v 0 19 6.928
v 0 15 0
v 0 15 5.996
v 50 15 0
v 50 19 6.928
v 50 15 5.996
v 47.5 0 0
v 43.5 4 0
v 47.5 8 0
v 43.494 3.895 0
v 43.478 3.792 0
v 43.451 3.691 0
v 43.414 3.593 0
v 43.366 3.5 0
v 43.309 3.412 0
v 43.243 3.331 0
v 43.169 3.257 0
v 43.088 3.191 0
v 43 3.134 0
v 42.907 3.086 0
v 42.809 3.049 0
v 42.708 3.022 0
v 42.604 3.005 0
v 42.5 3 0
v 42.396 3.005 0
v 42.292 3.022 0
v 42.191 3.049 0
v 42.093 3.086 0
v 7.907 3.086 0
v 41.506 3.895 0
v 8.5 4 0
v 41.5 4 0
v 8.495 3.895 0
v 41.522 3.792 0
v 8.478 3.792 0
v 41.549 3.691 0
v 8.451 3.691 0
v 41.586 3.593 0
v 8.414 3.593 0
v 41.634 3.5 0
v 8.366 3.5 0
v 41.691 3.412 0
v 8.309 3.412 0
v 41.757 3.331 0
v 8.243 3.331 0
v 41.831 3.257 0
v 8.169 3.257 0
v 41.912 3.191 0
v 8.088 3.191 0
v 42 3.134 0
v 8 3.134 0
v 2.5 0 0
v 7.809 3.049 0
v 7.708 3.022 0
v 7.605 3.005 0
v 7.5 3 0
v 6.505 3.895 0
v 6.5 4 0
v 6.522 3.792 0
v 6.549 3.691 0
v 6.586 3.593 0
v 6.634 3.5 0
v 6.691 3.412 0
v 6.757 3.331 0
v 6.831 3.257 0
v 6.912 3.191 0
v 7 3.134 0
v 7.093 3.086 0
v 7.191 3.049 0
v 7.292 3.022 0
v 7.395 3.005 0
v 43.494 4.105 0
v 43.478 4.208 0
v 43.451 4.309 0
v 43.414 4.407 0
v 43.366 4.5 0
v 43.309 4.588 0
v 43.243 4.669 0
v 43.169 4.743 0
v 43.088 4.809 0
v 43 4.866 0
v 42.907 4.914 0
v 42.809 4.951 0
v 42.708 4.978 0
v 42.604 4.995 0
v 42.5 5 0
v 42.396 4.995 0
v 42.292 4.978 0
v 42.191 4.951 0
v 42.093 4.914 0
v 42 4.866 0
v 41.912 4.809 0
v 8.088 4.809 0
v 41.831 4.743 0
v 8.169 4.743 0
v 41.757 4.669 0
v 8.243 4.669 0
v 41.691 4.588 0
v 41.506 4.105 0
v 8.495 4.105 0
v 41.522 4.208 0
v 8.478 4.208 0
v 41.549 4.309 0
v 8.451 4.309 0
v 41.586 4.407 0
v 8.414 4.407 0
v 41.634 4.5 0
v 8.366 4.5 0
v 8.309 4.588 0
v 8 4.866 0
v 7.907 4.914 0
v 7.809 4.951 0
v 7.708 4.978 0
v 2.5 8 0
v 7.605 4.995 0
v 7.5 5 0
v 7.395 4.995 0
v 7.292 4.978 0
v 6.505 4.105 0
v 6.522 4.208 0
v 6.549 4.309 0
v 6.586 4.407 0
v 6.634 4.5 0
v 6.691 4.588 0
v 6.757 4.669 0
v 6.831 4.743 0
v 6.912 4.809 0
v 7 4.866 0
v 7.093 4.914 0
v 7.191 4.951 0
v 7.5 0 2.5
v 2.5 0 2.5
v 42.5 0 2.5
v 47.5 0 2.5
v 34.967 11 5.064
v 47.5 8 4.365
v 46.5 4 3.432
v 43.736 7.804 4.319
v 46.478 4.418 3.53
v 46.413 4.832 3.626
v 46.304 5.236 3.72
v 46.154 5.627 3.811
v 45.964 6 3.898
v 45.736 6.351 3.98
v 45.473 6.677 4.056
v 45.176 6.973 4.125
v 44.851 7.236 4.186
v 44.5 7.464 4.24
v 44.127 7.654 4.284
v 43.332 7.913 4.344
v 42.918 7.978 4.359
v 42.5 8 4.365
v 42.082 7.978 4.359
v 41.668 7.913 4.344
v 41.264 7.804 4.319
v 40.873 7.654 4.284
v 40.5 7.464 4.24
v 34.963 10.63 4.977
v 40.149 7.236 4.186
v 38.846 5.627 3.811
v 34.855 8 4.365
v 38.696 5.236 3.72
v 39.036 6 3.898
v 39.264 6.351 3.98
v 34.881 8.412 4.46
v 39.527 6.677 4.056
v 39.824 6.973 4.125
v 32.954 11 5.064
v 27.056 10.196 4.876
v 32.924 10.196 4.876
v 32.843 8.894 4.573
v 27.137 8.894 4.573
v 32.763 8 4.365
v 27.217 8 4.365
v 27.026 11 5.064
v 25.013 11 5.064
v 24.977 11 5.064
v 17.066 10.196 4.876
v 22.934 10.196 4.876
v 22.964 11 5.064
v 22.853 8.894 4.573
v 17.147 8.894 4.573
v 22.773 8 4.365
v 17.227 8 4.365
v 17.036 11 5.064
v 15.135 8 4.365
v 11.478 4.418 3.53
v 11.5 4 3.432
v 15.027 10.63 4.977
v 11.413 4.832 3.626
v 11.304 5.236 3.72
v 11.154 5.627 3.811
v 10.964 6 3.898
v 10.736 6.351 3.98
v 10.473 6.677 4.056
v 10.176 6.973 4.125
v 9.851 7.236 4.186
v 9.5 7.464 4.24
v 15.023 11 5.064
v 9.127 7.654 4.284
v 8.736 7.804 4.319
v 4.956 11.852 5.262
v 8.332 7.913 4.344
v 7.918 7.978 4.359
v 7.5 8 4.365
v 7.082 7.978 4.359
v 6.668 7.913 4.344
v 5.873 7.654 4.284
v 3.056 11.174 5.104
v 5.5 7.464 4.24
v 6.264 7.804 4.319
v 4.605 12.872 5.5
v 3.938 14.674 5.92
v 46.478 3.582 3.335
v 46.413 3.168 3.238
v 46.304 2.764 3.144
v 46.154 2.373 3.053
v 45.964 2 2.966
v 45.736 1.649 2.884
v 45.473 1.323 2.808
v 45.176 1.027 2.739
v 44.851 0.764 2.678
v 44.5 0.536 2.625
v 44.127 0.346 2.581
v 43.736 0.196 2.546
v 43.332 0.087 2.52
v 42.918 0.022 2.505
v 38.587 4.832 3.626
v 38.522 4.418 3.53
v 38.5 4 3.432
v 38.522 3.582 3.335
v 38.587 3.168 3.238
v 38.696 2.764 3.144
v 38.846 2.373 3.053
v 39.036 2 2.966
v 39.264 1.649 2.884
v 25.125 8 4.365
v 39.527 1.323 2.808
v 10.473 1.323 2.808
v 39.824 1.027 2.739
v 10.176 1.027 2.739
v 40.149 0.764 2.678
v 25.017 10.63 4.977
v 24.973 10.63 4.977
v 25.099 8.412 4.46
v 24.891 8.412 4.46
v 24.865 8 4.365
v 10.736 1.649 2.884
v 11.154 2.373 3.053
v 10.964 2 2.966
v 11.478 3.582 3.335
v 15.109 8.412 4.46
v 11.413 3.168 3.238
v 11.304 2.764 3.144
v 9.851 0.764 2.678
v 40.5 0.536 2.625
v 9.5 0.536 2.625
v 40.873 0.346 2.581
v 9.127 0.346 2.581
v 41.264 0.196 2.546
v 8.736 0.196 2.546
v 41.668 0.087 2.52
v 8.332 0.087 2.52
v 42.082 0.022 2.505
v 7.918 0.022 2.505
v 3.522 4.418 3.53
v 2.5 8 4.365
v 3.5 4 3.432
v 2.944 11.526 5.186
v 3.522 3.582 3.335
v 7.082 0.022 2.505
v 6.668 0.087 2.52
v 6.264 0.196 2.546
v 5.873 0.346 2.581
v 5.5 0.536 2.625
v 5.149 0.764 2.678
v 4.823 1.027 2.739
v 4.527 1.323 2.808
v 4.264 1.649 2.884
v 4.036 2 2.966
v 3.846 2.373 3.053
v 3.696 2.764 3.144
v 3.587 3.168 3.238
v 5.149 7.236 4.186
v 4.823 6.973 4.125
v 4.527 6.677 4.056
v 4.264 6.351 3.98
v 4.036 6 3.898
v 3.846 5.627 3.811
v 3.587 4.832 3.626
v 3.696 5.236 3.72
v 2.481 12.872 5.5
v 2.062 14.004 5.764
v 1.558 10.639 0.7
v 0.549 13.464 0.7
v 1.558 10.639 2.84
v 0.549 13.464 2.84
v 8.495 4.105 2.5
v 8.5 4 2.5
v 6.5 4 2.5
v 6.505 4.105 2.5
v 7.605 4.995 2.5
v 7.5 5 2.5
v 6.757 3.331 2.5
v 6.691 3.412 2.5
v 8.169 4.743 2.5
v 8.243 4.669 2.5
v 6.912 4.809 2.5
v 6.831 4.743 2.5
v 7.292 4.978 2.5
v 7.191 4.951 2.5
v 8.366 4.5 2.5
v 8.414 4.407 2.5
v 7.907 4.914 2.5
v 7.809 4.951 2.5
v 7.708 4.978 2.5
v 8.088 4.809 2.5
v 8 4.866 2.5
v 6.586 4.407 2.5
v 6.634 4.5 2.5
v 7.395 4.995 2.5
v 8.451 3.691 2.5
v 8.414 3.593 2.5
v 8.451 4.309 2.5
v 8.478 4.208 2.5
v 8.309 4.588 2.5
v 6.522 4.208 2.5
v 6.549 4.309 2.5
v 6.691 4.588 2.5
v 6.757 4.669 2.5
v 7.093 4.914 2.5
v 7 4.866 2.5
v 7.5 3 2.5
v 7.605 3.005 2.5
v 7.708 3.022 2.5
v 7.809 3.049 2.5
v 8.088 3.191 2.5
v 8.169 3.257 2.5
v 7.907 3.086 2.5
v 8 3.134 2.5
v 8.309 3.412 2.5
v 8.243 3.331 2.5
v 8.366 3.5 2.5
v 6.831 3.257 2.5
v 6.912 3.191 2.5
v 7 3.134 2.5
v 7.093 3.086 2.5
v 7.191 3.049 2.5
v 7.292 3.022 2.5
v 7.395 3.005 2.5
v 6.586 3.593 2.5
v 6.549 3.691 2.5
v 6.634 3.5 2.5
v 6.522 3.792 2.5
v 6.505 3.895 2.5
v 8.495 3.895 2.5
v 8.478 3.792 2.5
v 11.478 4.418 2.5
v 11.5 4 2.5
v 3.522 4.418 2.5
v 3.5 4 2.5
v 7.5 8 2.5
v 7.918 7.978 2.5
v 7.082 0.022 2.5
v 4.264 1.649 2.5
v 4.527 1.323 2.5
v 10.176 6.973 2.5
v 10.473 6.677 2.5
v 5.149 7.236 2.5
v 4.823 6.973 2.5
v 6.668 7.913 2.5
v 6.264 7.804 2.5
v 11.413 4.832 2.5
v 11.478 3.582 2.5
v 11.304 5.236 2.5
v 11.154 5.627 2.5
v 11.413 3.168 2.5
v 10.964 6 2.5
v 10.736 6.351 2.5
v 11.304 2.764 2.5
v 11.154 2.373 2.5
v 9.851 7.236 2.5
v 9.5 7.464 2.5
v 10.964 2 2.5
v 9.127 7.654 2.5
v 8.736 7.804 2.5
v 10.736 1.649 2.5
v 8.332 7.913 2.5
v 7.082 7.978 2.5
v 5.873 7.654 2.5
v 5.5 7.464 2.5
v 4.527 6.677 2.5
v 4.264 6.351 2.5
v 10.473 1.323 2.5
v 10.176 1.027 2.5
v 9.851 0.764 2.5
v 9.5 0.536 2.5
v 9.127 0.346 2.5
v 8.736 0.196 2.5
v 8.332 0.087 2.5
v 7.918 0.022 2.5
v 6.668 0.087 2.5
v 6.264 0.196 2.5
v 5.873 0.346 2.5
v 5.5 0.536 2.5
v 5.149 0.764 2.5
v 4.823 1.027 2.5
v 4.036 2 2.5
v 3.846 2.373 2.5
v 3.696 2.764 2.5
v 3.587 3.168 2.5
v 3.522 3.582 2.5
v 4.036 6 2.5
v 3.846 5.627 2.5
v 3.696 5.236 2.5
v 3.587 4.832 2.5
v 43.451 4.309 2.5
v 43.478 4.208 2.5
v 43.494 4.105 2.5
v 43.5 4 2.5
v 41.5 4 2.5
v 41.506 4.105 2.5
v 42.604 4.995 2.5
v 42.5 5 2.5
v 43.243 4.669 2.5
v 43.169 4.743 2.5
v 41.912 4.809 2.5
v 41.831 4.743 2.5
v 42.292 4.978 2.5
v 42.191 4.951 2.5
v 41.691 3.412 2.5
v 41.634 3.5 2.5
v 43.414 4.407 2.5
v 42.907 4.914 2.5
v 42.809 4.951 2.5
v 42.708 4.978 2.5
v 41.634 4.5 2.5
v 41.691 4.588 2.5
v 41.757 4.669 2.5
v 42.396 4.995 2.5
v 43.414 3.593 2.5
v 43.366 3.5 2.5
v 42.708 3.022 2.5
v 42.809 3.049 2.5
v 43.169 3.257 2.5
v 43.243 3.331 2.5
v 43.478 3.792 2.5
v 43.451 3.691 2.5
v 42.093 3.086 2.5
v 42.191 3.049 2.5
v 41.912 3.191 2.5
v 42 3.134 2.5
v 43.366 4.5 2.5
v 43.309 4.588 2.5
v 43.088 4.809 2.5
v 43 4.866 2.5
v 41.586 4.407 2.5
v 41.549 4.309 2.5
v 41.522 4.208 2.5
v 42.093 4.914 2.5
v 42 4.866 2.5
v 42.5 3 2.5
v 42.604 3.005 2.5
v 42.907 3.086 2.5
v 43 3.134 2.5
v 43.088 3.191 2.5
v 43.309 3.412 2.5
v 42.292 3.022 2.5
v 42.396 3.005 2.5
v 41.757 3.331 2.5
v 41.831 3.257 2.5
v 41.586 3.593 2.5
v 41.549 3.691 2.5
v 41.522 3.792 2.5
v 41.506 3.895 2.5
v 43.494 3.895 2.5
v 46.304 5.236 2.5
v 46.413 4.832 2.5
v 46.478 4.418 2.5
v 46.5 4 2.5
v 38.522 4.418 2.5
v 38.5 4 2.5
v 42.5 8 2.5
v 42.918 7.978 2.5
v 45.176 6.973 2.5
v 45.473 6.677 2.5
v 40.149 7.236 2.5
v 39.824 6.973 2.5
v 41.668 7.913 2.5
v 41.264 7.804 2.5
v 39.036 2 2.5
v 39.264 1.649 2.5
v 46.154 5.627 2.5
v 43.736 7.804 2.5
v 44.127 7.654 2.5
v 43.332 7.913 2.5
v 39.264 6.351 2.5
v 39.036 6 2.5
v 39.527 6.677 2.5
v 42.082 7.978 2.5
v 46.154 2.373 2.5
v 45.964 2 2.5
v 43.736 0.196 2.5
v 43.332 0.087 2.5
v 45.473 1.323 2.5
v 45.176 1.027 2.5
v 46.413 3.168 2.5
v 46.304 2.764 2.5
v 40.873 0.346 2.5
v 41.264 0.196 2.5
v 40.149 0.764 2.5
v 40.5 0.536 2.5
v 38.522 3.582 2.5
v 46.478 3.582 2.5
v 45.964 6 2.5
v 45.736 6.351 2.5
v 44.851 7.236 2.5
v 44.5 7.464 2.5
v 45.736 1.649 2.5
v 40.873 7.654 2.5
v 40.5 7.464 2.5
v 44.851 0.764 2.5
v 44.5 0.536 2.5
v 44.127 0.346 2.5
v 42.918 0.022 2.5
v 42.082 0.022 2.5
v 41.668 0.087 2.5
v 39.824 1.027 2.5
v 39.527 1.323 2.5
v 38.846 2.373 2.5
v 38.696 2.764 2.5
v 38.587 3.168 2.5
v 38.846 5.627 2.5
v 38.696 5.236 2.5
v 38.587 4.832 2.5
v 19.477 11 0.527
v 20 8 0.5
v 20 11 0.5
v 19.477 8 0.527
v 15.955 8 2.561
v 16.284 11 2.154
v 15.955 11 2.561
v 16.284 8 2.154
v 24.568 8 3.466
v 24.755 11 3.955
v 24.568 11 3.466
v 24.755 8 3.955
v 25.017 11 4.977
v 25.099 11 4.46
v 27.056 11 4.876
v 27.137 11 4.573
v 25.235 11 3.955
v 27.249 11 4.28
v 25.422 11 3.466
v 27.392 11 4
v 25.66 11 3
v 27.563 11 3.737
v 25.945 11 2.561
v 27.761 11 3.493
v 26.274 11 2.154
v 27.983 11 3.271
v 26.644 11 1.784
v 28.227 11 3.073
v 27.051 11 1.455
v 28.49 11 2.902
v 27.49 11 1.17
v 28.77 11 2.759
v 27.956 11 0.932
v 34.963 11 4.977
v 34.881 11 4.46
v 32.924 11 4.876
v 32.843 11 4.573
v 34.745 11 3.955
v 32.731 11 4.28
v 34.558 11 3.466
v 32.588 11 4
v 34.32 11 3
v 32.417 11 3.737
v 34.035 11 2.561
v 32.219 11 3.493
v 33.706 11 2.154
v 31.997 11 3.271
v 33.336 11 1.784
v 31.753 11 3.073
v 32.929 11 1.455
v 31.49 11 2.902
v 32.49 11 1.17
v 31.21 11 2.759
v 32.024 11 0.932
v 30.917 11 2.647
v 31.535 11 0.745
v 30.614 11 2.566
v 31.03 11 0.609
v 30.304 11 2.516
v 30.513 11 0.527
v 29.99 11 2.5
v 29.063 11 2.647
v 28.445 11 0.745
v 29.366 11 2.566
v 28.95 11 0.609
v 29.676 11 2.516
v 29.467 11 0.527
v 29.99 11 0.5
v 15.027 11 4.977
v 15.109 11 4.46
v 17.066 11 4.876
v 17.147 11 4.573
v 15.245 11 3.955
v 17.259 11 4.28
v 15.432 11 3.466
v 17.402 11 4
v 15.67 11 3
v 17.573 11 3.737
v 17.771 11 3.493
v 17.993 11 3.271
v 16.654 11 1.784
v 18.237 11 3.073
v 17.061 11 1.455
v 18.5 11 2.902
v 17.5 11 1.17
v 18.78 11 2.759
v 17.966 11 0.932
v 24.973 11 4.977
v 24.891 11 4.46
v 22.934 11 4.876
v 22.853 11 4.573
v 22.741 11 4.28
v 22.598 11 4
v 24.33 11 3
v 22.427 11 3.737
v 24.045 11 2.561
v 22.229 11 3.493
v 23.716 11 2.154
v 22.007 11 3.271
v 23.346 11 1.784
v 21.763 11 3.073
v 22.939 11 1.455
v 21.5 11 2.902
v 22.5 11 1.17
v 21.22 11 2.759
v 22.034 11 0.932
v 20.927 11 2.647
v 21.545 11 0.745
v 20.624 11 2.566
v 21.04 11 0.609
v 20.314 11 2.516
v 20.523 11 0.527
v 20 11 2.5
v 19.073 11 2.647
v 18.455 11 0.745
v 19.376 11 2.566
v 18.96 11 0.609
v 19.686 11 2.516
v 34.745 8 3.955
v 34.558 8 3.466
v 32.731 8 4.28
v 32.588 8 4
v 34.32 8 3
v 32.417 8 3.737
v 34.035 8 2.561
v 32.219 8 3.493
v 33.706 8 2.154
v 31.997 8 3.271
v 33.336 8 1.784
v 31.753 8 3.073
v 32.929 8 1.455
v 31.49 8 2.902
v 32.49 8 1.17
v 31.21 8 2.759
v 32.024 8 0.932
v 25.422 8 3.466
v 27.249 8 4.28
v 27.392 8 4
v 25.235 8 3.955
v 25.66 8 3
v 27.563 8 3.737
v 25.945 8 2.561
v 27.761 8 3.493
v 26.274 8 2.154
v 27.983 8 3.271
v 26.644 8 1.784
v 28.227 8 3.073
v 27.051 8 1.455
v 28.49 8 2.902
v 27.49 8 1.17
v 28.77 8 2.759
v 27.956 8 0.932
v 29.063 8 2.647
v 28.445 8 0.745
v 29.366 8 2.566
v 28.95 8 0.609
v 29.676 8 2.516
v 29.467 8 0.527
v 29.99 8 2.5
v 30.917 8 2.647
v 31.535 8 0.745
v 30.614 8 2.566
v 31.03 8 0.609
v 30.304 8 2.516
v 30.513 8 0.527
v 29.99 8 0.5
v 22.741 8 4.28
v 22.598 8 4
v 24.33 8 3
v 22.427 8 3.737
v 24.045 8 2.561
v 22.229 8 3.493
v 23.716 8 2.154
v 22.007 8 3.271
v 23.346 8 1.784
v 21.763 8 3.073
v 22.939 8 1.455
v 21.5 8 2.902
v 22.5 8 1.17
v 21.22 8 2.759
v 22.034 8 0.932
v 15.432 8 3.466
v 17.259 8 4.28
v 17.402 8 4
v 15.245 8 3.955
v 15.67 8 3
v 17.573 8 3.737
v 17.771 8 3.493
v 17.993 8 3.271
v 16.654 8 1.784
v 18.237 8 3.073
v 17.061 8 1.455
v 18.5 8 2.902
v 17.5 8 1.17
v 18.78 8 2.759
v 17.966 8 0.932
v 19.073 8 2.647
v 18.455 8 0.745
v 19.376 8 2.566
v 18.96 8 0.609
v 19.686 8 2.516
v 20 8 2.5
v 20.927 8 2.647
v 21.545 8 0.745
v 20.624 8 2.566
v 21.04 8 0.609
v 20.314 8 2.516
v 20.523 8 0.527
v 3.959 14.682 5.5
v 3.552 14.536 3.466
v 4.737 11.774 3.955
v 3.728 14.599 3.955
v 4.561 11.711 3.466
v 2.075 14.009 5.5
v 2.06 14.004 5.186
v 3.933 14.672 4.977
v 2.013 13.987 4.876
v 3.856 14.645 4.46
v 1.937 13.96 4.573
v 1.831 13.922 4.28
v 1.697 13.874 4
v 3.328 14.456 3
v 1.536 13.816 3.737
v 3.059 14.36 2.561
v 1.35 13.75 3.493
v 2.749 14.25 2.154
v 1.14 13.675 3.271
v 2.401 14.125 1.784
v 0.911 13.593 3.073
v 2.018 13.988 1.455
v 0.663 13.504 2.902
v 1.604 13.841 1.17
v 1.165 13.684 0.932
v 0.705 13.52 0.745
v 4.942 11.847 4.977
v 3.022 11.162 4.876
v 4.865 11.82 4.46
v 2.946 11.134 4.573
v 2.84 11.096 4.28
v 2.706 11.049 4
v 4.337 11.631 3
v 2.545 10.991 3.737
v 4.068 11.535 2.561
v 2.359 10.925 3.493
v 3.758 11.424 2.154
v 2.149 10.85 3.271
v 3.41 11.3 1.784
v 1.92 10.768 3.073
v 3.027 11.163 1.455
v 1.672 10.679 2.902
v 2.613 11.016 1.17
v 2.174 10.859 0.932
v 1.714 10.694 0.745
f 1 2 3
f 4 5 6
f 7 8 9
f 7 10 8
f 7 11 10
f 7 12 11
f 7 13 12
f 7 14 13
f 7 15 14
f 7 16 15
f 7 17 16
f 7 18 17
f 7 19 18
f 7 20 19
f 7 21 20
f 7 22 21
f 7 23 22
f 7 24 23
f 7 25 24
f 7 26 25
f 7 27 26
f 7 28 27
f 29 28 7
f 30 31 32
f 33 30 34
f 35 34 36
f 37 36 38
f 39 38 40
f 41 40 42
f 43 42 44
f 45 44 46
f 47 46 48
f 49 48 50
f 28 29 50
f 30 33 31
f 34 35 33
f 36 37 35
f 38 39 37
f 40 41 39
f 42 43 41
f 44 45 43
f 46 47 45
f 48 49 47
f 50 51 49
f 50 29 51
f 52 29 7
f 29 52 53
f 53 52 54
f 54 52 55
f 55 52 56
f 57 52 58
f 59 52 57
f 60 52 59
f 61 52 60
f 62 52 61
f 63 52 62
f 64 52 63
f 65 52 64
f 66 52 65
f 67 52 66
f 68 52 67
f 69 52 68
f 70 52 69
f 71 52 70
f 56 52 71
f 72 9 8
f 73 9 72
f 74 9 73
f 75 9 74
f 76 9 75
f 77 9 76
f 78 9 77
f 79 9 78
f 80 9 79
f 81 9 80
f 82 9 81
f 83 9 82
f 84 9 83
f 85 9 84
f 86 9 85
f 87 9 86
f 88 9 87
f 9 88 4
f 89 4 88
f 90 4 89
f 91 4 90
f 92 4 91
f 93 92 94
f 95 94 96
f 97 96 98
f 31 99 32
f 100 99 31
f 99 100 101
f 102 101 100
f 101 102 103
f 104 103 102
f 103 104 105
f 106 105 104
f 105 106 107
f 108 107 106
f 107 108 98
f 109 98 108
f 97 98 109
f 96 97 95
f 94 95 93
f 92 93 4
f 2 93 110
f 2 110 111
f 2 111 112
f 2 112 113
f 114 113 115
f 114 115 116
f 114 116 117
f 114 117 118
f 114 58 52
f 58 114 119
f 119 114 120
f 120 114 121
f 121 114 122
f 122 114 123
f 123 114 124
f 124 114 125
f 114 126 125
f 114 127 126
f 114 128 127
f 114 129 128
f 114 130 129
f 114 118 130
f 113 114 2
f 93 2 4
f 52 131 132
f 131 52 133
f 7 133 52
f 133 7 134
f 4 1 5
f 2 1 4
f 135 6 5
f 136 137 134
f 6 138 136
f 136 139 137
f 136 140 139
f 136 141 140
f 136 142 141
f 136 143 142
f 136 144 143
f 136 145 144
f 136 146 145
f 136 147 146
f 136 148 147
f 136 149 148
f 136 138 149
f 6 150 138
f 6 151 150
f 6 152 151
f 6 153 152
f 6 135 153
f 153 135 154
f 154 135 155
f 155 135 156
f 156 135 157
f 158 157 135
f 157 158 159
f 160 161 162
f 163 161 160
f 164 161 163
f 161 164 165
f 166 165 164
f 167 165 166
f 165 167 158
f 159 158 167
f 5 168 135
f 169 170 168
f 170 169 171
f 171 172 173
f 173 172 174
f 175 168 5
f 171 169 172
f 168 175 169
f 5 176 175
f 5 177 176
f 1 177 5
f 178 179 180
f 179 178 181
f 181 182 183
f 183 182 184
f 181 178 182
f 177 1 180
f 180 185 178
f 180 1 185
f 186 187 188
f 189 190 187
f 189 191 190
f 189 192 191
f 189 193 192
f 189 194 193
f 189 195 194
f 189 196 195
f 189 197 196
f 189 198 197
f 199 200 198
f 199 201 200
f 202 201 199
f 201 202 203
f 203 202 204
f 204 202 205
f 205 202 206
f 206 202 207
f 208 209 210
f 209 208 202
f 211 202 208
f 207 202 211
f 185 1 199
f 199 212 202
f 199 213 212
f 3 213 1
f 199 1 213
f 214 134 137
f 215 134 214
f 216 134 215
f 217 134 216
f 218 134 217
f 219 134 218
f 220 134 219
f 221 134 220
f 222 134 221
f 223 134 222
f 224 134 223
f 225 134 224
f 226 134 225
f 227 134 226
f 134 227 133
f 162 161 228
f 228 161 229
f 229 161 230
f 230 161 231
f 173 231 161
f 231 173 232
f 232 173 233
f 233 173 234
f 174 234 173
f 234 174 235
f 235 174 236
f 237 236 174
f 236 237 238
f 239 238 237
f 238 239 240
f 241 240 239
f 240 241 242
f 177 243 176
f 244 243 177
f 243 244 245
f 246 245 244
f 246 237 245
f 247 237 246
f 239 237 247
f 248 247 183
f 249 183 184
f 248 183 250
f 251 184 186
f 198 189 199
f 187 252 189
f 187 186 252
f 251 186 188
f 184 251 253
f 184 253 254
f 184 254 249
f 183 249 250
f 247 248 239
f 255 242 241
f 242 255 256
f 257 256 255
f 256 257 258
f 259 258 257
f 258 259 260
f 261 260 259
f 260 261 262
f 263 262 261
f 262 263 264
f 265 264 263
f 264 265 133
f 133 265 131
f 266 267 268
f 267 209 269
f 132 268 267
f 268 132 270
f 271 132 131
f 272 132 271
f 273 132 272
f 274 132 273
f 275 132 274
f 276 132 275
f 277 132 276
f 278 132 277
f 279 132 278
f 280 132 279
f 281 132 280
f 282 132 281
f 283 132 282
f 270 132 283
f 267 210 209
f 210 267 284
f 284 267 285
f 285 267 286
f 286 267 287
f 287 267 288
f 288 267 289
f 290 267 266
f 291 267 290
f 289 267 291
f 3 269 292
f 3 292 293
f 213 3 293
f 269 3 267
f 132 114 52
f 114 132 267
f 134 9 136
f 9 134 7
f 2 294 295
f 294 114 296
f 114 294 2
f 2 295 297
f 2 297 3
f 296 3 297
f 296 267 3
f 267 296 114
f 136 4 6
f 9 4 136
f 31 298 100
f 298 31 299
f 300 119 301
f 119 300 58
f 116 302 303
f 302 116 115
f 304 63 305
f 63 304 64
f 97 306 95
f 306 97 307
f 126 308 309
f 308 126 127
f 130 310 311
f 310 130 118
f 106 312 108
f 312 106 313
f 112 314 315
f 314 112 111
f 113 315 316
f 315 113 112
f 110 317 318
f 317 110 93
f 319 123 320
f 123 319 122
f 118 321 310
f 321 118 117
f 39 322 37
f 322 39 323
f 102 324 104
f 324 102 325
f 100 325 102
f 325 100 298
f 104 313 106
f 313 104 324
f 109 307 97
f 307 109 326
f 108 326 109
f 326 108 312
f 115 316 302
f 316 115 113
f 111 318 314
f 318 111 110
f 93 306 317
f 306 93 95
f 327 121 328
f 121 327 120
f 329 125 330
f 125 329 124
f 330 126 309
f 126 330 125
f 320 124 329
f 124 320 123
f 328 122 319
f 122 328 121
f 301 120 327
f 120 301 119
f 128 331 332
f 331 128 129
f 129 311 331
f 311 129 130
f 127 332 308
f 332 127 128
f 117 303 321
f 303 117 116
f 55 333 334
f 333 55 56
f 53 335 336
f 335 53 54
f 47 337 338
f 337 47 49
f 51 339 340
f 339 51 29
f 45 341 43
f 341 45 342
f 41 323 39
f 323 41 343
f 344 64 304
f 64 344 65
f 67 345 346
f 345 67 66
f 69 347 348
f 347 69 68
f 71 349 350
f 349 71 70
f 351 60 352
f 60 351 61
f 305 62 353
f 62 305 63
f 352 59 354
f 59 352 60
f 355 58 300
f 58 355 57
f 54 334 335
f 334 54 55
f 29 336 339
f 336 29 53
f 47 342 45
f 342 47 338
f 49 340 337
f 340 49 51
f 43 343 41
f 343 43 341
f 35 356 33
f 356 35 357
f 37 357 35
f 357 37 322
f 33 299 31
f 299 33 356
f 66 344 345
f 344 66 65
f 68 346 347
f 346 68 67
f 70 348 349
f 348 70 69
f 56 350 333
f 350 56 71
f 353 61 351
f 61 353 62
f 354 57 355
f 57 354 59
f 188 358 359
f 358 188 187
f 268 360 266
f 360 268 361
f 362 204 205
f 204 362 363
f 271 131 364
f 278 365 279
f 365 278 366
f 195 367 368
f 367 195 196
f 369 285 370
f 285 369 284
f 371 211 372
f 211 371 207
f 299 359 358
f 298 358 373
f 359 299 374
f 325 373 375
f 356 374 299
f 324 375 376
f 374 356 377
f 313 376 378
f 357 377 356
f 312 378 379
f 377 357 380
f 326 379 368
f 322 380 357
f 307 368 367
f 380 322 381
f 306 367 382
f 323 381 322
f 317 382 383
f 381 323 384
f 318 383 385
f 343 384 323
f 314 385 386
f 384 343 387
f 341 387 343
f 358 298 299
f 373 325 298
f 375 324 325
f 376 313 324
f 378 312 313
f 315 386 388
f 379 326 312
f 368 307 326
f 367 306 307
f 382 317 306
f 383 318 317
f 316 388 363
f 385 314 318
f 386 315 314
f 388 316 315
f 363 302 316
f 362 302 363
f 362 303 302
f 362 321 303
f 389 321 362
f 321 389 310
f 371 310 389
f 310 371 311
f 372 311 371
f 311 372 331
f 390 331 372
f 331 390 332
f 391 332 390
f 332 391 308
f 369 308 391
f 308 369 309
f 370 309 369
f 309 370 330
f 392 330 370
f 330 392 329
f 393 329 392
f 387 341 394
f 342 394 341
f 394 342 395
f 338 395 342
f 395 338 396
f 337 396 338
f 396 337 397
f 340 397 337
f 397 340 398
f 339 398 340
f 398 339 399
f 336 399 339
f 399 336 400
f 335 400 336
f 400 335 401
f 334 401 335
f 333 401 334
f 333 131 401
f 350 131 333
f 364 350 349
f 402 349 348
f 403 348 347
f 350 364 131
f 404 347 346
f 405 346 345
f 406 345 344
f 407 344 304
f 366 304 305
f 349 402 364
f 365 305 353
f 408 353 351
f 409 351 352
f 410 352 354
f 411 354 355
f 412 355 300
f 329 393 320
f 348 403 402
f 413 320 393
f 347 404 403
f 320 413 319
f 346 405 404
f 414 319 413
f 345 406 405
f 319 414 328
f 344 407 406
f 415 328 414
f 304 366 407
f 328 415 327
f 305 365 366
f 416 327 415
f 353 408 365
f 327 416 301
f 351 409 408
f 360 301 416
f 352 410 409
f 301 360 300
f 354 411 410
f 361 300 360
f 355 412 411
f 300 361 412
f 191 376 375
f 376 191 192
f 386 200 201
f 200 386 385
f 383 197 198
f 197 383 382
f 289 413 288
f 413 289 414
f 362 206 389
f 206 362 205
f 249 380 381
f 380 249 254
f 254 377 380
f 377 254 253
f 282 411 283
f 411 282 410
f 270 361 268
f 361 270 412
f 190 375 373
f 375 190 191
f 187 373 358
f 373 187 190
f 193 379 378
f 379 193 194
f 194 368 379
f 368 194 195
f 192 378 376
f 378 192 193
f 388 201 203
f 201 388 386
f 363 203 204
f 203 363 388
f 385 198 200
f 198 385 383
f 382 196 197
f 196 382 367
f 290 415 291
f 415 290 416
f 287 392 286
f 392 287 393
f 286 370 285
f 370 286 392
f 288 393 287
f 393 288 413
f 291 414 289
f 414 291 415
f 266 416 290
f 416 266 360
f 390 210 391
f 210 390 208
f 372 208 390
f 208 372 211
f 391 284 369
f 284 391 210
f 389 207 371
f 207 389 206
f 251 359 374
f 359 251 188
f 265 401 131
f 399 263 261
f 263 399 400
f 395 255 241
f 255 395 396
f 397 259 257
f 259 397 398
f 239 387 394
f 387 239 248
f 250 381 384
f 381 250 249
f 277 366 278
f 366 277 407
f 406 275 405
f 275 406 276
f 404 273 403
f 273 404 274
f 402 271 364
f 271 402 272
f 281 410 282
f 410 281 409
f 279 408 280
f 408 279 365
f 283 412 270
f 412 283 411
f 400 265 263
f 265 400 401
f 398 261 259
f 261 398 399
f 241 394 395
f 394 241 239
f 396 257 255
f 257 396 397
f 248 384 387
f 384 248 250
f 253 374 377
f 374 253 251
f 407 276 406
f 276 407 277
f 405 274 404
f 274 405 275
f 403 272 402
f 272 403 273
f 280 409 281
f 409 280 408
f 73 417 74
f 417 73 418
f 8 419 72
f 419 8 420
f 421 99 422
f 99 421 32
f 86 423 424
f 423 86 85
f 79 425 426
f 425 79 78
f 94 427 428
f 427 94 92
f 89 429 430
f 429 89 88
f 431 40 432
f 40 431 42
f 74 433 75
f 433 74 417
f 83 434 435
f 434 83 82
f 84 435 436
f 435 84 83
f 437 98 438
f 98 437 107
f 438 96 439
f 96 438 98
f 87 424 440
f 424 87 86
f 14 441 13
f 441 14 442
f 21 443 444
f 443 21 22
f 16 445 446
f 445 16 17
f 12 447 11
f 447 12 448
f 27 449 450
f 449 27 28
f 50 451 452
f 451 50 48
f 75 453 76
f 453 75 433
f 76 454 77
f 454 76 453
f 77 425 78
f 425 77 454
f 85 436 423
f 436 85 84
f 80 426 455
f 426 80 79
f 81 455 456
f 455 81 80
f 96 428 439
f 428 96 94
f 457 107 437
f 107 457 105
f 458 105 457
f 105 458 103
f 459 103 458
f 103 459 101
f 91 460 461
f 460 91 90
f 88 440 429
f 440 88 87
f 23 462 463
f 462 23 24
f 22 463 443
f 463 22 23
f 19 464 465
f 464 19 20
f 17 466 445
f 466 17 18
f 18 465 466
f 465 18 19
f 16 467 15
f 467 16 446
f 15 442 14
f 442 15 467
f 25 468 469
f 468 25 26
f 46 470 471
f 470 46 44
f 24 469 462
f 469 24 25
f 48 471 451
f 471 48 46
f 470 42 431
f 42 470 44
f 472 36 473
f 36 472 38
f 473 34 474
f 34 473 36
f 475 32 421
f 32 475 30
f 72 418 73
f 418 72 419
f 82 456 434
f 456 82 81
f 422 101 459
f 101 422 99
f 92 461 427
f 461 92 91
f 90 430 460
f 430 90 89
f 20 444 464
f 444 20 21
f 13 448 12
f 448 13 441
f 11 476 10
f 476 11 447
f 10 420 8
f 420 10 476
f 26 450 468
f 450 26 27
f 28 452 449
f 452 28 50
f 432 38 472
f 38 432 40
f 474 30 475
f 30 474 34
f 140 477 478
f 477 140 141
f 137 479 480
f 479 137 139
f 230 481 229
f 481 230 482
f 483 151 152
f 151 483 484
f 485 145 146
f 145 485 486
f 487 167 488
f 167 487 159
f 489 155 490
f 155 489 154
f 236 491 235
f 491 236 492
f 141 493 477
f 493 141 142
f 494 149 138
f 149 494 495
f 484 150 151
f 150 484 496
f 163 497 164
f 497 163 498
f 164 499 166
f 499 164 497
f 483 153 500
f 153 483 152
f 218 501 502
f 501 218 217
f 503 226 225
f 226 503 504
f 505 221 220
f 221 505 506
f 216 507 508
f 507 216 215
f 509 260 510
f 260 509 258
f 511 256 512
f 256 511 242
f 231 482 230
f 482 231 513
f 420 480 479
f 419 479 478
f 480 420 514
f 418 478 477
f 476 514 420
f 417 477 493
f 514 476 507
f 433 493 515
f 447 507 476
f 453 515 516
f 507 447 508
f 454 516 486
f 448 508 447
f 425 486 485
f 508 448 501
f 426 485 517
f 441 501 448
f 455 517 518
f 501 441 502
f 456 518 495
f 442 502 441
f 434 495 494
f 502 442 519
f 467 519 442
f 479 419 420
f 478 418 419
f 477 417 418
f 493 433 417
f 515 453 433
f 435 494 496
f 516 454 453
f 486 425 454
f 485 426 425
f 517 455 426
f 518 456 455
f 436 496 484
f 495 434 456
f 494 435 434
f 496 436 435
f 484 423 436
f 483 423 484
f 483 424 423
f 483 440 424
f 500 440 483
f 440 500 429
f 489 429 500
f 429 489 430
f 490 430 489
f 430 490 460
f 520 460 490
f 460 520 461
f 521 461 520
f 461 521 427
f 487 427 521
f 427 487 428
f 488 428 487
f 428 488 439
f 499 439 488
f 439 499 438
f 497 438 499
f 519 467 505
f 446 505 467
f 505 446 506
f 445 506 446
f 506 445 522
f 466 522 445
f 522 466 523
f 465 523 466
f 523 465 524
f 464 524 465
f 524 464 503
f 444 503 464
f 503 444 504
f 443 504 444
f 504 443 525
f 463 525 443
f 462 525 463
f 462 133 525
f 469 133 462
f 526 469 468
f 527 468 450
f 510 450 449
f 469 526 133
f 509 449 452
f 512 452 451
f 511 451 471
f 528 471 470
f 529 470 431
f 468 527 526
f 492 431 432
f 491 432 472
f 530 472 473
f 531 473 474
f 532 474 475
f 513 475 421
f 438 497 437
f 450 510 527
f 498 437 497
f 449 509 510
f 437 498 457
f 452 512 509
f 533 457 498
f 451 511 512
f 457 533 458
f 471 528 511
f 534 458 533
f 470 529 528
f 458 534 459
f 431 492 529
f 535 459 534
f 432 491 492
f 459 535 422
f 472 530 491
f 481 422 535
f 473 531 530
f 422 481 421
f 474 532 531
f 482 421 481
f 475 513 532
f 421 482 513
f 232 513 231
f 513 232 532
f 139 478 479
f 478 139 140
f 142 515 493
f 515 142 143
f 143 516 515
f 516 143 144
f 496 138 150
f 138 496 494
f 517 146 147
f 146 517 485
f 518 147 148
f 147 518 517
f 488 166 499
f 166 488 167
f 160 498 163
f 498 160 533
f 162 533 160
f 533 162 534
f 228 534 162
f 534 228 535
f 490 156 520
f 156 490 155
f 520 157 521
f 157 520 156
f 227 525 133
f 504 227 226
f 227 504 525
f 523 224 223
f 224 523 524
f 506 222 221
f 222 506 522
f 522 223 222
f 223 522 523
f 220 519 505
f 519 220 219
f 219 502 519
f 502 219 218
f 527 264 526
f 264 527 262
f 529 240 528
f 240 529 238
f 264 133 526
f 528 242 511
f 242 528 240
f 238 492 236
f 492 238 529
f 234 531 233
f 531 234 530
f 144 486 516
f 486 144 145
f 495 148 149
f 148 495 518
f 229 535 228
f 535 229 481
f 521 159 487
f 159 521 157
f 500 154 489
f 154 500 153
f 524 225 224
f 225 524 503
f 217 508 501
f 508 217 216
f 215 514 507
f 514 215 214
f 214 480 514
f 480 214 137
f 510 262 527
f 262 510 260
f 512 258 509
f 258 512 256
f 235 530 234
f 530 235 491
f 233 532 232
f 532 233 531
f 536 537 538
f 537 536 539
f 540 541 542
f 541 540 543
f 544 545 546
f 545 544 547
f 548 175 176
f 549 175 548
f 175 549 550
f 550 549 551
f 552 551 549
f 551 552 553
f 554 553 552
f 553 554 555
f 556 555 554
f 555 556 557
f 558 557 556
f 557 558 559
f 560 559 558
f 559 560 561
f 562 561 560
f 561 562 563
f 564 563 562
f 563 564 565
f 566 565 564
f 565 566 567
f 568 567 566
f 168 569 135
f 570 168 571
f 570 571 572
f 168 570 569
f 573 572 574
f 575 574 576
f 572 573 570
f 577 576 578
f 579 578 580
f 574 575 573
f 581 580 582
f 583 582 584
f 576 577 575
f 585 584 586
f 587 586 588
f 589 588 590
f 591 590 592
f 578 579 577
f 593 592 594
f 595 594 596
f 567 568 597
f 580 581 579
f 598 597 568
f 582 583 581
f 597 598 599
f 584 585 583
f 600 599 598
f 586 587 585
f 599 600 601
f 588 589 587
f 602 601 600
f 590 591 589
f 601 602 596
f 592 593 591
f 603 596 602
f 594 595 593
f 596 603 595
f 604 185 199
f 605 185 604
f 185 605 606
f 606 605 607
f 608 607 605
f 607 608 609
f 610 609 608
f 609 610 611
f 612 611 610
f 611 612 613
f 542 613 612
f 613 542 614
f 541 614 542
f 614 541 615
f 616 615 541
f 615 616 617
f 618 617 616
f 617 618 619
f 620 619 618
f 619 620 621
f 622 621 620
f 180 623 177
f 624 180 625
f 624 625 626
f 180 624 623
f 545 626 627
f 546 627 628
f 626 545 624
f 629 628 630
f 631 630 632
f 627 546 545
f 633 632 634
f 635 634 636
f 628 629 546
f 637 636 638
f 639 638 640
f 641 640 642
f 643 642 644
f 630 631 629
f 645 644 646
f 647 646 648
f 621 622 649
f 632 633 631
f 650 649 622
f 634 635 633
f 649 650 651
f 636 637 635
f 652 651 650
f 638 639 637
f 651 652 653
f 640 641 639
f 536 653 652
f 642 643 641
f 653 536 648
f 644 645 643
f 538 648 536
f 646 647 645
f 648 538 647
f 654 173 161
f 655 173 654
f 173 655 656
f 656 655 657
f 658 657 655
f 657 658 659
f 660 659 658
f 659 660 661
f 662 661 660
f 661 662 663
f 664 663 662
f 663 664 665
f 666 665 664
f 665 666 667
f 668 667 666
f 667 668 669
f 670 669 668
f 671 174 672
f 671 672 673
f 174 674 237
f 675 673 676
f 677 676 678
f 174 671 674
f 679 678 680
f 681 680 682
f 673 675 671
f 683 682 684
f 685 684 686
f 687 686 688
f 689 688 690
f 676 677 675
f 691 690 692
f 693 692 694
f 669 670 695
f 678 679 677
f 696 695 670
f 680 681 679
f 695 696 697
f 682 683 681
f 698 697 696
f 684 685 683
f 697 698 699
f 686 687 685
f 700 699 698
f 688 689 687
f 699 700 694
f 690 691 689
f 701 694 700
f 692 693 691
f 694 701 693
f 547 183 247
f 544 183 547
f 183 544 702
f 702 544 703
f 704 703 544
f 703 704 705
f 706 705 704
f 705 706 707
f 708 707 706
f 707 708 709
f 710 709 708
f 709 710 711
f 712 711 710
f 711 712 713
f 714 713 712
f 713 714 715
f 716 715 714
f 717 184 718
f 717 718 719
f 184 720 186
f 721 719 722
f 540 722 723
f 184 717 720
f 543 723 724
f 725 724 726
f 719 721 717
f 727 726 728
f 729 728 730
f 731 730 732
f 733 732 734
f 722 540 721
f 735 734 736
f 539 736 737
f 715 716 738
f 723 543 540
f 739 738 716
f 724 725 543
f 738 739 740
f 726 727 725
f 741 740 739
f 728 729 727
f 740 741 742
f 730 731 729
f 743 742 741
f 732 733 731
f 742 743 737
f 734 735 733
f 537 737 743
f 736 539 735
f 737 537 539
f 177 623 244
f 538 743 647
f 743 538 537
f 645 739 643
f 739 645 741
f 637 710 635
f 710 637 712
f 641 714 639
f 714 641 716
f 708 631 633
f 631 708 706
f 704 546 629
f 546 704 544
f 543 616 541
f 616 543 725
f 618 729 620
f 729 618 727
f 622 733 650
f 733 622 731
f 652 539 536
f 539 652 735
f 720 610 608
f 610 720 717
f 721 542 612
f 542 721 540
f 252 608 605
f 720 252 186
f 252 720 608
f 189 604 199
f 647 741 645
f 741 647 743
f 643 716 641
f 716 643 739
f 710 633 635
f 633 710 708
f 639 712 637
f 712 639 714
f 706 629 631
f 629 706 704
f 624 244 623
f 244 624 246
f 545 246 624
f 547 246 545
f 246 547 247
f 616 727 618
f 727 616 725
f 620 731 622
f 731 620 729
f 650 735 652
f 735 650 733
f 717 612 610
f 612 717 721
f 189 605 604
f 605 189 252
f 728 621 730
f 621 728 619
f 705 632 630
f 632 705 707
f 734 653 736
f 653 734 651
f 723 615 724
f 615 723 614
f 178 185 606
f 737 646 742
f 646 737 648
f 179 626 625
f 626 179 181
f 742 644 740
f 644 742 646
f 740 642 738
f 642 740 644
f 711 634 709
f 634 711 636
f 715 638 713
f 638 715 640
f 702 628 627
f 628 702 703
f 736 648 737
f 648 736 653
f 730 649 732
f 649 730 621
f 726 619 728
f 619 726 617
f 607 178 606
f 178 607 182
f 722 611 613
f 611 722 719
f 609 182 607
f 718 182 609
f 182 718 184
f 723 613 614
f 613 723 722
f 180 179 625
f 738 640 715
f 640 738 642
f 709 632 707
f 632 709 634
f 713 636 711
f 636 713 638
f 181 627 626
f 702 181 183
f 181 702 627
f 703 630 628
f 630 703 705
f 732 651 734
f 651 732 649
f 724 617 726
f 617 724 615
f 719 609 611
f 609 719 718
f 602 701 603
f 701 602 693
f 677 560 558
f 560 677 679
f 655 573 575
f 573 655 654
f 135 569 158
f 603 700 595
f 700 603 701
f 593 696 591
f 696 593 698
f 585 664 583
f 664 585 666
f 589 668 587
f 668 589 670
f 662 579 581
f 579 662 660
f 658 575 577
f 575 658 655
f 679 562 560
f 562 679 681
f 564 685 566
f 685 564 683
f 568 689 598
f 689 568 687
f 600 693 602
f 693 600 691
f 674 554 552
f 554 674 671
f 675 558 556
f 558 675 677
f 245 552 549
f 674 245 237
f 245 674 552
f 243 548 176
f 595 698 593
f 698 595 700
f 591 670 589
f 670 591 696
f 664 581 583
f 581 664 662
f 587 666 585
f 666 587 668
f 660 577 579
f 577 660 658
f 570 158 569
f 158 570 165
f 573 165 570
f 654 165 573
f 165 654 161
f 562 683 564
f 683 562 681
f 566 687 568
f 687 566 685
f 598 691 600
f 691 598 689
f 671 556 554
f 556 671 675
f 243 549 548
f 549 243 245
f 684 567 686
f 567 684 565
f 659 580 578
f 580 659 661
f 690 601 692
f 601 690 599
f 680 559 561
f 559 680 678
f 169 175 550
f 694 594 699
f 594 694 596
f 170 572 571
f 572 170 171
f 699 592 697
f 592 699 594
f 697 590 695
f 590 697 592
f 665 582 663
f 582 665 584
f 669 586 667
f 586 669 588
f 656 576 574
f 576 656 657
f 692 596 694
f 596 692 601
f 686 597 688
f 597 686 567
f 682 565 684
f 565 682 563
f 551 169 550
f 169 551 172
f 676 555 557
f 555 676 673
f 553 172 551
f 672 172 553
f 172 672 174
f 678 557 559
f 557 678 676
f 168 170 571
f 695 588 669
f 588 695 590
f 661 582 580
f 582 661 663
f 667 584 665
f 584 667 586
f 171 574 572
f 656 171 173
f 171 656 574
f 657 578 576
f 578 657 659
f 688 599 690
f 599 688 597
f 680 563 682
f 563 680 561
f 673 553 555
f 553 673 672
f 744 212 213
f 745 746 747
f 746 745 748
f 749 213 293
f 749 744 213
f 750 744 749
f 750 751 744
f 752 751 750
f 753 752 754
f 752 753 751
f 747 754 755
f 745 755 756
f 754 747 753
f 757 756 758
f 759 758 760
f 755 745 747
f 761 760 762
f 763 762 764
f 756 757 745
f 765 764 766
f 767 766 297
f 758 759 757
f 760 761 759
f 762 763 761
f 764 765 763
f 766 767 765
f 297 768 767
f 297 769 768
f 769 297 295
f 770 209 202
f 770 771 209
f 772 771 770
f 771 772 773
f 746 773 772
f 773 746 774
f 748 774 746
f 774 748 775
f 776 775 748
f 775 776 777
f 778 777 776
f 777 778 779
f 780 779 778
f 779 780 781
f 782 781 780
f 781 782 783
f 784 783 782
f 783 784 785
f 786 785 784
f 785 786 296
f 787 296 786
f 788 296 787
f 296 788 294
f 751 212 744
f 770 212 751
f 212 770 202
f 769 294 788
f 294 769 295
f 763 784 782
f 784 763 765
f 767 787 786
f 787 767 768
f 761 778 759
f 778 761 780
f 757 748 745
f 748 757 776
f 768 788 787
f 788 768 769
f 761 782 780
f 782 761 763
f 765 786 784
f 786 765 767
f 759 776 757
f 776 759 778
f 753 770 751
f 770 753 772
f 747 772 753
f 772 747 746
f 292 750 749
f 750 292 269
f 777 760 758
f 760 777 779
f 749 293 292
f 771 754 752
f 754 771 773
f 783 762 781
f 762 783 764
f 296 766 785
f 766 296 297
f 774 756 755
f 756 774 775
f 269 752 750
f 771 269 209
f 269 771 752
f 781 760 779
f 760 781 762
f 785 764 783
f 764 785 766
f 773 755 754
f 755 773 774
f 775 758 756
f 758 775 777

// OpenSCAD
height = 15;
angle = 90-30;
led_length=50;
led_width=8;

mount_with=45;
mount_height=8;
mount_hole_d=2;
mount_head_d=8;
mount_hole_dist=35;
mount_depth = 2.5;

zip_w=3;
zip_h=2;
zip_d=6;

epsilon=0.01;


depth=led_width*sin(angle);
diff=(led_length-mount_with)/2;
height_addition=led_width*cos(angle);
bngle=atan((depth-mount_depth)/(height+height_addition));
cngle=atan(diff/(height-mount_height));

module led_base(){
  difference(){
    cube([led_length,height+height_addition,depth]);
    
    translate([0,height,0])
    rotate([angle,0,0])
    translate([-epsilon,-height*2,-depth*4])
    cube([led_length+2*epsilon,height*4,depth*4]);
    
    translate([0,0,mount_depth])
    rotate([bngle,0,0])
    translate([-epsilon,-height*2,0])
    cube([led_length+2*epsilon,height*4,depth*4]);
  }
}

module mount_hole(){
  translate([0,0,-epsilon])
  cylinder(r=mount_hole_d/2,h=mount_depth+2*epsilon,$fn=60);
  translate([0,0,mount_depth])
  cylinder(r=mount_head_d/2,h=mount_depth+epsilon,$fn=60);
}

module led_mount(){
  translate([mount_with/2-mount_hole_dist/2,mount_height/2,0]){
    mount_hole();
    translate([mount_hole_dist,0,0])
    mount_hole();
  }
}

module led_shaped() {
  difference(){
    led_base();
    
    translate([-epsilon,-epsilon,-epsilon])
    cube([diff+1*epsilon,mount_height+epsilon,depth+2*epsilon]);
    translate([led_length-diff,-epsilon,-epsilon])
    cube([diff+1*epsilon,mount_height+epsilon,depth+2*epsilon]);
    
    translate([diff,mount_height,0])
    rotate([0,0,cngle])
    translate([-diff-epsilon,0,-epsilon])
    cube([diff+epsilon,diff/sin(cngle)+epsilon,depth+2*epsilon]);
    
    translate([mount_with+diff,mount_height,0])
    rotate([0,0,-cngle])
    translate([0,0,-epsilon])
    cube([diff+epsilon,diff/sin(cngle)+epsilon,depth+2*epsilon]);
  }
}

module zip(){
  difference(){
    cylinder(r=(zip_h*2+zip_d)/2,h=zip_w,$fn=60);
    translate([0,0,-epsilon])
    cylinder(r=(zip_d)/2,h=zip_w+2*epsilon,$fn=60);
  }
}

module eledzips(){
  translate([(led_length-(2*zip_h+zip_d))/2,0,mount_depth+3])
  rotate([0,0,0])
  translate([0,mount_height+zip_w,0])
  rotate([90,0,0])
  translate([0,0,0]){
    zip();
    translate([zip_d+2*zip_h-epsilon,0,0])
    zip();
  }
}

module led_holder(){
  difference(){
    led_shaped();
    
    translate([diff,0,0])
    led_mount();
    
    eledzips();
    
    translate([0,0,mount_depth])
    rotate([0,0,0])
    translate([diff/2-2,mount_height+(zip_w+height-mount_height)/2,3])
    rotate([90,0,cngle])
    zip();
  }
}
led_holder();
